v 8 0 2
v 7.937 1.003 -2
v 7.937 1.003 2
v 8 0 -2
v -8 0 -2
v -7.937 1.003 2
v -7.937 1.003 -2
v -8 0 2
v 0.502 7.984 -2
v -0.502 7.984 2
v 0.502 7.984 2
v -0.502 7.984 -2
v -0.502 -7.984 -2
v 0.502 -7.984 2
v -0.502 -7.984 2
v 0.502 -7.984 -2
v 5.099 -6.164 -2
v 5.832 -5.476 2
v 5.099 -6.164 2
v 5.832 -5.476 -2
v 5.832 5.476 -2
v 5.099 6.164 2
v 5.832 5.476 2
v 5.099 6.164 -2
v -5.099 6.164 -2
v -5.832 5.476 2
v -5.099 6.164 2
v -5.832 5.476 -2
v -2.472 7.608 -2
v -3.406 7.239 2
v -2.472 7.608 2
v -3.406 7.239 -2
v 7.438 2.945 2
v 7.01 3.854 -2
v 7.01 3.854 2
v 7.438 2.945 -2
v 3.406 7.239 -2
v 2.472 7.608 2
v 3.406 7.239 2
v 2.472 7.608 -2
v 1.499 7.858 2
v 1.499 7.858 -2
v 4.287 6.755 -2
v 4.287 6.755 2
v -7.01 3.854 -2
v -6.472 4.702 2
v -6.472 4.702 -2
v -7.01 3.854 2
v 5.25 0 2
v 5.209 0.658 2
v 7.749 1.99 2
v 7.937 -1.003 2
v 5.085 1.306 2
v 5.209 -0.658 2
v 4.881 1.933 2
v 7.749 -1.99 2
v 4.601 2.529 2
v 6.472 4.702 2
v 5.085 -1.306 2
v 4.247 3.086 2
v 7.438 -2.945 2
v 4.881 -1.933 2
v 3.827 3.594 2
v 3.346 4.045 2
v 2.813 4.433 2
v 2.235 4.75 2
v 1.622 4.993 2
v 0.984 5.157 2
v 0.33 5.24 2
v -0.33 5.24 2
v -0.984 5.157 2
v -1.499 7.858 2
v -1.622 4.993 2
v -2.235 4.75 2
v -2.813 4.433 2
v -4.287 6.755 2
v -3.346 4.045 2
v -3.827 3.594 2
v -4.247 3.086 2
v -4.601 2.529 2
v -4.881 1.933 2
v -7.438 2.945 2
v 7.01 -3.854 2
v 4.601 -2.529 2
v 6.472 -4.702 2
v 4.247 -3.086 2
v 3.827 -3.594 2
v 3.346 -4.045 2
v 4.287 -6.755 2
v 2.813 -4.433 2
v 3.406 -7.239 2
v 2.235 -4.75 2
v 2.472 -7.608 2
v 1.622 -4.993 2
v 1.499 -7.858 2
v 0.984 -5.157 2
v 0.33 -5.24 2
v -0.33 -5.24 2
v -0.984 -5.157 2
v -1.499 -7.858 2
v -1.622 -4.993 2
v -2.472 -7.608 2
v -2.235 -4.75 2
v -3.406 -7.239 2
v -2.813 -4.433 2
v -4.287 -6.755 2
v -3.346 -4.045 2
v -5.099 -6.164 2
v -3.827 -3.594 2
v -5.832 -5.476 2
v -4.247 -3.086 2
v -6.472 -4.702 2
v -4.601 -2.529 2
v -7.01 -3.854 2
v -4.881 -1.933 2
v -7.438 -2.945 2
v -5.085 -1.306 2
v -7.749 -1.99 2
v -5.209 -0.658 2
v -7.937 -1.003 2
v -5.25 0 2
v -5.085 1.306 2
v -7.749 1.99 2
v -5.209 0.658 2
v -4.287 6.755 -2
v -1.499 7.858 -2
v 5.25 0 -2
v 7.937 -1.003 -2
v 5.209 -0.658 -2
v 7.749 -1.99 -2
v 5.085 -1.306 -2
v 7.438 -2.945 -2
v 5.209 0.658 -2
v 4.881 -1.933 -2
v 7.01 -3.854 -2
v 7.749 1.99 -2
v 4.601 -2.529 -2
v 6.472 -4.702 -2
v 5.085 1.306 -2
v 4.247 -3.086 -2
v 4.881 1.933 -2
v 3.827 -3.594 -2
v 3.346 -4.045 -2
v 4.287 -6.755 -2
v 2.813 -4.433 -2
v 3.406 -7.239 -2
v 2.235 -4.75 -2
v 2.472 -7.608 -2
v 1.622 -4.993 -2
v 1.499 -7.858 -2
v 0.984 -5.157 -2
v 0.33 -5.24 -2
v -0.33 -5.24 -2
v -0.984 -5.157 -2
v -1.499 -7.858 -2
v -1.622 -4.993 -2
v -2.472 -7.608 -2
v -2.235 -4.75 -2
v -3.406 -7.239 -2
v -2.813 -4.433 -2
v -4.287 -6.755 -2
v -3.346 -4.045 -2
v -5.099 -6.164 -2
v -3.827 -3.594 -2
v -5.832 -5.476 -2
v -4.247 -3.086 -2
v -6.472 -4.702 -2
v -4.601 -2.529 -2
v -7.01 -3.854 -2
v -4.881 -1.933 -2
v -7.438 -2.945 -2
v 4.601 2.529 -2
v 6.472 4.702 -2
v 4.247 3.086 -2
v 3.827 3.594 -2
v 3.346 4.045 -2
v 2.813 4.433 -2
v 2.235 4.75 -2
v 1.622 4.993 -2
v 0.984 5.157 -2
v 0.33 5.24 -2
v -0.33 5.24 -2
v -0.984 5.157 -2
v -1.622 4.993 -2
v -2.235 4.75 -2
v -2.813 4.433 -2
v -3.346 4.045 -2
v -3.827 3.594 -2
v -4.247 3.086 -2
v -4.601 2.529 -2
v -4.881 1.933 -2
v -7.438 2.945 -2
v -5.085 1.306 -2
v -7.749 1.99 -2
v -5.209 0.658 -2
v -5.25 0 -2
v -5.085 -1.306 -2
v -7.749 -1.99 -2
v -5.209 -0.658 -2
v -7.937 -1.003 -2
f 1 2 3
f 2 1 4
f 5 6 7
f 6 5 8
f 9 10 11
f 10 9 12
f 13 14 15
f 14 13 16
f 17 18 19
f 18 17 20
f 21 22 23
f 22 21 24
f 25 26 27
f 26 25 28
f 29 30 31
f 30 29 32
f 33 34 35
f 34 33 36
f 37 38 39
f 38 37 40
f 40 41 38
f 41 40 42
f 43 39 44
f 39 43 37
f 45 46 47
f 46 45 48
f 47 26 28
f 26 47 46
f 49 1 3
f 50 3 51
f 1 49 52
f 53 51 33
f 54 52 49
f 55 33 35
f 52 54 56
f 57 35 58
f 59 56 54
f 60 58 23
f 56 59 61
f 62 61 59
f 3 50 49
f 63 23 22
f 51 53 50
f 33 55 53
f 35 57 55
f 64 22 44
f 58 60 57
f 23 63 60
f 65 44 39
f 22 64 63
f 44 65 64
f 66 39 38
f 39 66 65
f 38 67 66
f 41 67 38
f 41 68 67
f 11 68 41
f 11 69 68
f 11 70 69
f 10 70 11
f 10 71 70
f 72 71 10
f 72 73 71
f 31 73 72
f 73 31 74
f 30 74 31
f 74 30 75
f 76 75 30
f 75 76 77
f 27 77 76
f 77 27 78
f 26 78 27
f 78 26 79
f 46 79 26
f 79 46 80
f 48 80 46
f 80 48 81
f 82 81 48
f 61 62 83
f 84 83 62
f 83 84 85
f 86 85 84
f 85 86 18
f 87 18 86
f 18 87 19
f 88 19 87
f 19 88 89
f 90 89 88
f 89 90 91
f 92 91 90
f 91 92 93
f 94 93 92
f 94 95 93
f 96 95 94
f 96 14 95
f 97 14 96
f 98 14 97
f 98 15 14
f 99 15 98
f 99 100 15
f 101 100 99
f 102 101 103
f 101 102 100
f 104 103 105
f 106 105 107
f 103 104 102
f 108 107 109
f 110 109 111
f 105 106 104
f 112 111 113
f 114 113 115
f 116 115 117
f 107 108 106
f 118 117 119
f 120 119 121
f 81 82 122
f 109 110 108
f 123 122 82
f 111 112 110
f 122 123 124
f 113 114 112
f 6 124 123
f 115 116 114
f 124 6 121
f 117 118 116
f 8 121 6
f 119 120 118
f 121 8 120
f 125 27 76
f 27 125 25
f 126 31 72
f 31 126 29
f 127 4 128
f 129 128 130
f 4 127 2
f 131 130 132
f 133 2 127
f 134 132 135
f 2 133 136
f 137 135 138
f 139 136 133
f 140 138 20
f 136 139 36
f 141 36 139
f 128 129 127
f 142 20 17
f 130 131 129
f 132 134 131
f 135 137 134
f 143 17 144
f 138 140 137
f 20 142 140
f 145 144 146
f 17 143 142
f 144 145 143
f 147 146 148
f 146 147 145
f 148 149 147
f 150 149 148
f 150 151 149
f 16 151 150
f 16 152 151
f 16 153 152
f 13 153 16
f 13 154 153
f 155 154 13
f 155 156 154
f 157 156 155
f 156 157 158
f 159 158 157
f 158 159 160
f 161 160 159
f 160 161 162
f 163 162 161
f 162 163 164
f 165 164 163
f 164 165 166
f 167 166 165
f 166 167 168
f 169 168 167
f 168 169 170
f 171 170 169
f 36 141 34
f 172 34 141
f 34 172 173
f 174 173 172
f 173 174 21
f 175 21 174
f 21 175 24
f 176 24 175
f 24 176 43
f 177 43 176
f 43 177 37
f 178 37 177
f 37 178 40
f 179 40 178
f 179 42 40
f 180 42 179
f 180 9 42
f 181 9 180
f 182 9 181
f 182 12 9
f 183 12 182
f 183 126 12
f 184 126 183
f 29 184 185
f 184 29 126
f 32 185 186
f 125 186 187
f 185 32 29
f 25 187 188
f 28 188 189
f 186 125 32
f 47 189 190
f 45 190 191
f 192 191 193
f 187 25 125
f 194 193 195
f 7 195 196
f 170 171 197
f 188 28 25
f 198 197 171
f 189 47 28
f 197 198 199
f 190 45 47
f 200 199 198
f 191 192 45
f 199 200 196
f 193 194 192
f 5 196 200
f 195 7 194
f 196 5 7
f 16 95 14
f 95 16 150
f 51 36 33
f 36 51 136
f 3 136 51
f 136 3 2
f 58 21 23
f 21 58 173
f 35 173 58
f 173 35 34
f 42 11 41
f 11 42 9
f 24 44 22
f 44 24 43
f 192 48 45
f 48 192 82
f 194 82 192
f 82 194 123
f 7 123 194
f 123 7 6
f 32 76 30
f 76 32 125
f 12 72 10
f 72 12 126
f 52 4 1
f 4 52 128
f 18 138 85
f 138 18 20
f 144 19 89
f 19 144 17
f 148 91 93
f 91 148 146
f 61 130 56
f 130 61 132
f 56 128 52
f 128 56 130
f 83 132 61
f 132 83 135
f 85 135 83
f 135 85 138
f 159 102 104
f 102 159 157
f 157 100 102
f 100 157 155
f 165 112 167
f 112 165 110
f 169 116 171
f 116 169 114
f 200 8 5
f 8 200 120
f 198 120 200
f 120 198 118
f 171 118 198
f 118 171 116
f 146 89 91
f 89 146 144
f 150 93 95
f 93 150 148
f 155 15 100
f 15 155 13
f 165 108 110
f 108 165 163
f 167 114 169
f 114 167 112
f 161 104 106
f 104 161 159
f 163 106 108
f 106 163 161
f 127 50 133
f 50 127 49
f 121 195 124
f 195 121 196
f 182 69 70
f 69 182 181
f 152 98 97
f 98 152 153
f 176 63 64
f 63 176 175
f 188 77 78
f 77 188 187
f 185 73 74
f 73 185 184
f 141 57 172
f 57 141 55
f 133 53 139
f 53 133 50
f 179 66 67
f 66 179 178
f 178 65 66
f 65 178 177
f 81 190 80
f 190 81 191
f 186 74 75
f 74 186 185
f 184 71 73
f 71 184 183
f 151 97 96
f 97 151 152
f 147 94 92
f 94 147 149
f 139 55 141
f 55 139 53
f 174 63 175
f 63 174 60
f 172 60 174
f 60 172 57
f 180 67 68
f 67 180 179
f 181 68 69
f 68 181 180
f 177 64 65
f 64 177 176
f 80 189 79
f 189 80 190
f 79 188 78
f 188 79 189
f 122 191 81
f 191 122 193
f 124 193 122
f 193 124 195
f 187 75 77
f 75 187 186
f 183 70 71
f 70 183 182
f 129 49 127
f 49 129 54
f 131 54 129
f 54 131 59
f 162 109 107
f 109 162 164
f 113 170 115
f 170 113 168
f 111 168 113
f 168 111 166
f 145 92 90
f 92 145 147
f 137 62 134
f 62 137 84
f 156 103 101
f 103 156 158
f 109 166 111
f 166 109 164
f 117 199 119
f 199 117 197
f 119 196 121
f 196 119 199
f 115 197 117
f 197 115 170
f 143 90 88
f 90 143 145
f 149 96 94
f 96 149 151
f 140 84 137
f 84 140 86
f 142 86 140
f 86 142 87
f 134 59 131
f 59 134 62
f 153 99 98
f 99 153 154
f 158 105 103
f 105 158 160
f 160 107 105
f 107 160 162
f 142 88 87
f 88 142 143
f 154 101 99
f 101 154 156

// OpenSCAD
$fn = 50;


difference() {
	union() {
		translate(v = [0, 0, -2.0000000000]) {
			cylinder(h = 4, r = 8.0000000000);
		}
	}
	union() {
		translate(v = [0, 0, -100.0000000000]) {
			cylinder(h = 200, r = 5.2500000000);
		}
	}
}
